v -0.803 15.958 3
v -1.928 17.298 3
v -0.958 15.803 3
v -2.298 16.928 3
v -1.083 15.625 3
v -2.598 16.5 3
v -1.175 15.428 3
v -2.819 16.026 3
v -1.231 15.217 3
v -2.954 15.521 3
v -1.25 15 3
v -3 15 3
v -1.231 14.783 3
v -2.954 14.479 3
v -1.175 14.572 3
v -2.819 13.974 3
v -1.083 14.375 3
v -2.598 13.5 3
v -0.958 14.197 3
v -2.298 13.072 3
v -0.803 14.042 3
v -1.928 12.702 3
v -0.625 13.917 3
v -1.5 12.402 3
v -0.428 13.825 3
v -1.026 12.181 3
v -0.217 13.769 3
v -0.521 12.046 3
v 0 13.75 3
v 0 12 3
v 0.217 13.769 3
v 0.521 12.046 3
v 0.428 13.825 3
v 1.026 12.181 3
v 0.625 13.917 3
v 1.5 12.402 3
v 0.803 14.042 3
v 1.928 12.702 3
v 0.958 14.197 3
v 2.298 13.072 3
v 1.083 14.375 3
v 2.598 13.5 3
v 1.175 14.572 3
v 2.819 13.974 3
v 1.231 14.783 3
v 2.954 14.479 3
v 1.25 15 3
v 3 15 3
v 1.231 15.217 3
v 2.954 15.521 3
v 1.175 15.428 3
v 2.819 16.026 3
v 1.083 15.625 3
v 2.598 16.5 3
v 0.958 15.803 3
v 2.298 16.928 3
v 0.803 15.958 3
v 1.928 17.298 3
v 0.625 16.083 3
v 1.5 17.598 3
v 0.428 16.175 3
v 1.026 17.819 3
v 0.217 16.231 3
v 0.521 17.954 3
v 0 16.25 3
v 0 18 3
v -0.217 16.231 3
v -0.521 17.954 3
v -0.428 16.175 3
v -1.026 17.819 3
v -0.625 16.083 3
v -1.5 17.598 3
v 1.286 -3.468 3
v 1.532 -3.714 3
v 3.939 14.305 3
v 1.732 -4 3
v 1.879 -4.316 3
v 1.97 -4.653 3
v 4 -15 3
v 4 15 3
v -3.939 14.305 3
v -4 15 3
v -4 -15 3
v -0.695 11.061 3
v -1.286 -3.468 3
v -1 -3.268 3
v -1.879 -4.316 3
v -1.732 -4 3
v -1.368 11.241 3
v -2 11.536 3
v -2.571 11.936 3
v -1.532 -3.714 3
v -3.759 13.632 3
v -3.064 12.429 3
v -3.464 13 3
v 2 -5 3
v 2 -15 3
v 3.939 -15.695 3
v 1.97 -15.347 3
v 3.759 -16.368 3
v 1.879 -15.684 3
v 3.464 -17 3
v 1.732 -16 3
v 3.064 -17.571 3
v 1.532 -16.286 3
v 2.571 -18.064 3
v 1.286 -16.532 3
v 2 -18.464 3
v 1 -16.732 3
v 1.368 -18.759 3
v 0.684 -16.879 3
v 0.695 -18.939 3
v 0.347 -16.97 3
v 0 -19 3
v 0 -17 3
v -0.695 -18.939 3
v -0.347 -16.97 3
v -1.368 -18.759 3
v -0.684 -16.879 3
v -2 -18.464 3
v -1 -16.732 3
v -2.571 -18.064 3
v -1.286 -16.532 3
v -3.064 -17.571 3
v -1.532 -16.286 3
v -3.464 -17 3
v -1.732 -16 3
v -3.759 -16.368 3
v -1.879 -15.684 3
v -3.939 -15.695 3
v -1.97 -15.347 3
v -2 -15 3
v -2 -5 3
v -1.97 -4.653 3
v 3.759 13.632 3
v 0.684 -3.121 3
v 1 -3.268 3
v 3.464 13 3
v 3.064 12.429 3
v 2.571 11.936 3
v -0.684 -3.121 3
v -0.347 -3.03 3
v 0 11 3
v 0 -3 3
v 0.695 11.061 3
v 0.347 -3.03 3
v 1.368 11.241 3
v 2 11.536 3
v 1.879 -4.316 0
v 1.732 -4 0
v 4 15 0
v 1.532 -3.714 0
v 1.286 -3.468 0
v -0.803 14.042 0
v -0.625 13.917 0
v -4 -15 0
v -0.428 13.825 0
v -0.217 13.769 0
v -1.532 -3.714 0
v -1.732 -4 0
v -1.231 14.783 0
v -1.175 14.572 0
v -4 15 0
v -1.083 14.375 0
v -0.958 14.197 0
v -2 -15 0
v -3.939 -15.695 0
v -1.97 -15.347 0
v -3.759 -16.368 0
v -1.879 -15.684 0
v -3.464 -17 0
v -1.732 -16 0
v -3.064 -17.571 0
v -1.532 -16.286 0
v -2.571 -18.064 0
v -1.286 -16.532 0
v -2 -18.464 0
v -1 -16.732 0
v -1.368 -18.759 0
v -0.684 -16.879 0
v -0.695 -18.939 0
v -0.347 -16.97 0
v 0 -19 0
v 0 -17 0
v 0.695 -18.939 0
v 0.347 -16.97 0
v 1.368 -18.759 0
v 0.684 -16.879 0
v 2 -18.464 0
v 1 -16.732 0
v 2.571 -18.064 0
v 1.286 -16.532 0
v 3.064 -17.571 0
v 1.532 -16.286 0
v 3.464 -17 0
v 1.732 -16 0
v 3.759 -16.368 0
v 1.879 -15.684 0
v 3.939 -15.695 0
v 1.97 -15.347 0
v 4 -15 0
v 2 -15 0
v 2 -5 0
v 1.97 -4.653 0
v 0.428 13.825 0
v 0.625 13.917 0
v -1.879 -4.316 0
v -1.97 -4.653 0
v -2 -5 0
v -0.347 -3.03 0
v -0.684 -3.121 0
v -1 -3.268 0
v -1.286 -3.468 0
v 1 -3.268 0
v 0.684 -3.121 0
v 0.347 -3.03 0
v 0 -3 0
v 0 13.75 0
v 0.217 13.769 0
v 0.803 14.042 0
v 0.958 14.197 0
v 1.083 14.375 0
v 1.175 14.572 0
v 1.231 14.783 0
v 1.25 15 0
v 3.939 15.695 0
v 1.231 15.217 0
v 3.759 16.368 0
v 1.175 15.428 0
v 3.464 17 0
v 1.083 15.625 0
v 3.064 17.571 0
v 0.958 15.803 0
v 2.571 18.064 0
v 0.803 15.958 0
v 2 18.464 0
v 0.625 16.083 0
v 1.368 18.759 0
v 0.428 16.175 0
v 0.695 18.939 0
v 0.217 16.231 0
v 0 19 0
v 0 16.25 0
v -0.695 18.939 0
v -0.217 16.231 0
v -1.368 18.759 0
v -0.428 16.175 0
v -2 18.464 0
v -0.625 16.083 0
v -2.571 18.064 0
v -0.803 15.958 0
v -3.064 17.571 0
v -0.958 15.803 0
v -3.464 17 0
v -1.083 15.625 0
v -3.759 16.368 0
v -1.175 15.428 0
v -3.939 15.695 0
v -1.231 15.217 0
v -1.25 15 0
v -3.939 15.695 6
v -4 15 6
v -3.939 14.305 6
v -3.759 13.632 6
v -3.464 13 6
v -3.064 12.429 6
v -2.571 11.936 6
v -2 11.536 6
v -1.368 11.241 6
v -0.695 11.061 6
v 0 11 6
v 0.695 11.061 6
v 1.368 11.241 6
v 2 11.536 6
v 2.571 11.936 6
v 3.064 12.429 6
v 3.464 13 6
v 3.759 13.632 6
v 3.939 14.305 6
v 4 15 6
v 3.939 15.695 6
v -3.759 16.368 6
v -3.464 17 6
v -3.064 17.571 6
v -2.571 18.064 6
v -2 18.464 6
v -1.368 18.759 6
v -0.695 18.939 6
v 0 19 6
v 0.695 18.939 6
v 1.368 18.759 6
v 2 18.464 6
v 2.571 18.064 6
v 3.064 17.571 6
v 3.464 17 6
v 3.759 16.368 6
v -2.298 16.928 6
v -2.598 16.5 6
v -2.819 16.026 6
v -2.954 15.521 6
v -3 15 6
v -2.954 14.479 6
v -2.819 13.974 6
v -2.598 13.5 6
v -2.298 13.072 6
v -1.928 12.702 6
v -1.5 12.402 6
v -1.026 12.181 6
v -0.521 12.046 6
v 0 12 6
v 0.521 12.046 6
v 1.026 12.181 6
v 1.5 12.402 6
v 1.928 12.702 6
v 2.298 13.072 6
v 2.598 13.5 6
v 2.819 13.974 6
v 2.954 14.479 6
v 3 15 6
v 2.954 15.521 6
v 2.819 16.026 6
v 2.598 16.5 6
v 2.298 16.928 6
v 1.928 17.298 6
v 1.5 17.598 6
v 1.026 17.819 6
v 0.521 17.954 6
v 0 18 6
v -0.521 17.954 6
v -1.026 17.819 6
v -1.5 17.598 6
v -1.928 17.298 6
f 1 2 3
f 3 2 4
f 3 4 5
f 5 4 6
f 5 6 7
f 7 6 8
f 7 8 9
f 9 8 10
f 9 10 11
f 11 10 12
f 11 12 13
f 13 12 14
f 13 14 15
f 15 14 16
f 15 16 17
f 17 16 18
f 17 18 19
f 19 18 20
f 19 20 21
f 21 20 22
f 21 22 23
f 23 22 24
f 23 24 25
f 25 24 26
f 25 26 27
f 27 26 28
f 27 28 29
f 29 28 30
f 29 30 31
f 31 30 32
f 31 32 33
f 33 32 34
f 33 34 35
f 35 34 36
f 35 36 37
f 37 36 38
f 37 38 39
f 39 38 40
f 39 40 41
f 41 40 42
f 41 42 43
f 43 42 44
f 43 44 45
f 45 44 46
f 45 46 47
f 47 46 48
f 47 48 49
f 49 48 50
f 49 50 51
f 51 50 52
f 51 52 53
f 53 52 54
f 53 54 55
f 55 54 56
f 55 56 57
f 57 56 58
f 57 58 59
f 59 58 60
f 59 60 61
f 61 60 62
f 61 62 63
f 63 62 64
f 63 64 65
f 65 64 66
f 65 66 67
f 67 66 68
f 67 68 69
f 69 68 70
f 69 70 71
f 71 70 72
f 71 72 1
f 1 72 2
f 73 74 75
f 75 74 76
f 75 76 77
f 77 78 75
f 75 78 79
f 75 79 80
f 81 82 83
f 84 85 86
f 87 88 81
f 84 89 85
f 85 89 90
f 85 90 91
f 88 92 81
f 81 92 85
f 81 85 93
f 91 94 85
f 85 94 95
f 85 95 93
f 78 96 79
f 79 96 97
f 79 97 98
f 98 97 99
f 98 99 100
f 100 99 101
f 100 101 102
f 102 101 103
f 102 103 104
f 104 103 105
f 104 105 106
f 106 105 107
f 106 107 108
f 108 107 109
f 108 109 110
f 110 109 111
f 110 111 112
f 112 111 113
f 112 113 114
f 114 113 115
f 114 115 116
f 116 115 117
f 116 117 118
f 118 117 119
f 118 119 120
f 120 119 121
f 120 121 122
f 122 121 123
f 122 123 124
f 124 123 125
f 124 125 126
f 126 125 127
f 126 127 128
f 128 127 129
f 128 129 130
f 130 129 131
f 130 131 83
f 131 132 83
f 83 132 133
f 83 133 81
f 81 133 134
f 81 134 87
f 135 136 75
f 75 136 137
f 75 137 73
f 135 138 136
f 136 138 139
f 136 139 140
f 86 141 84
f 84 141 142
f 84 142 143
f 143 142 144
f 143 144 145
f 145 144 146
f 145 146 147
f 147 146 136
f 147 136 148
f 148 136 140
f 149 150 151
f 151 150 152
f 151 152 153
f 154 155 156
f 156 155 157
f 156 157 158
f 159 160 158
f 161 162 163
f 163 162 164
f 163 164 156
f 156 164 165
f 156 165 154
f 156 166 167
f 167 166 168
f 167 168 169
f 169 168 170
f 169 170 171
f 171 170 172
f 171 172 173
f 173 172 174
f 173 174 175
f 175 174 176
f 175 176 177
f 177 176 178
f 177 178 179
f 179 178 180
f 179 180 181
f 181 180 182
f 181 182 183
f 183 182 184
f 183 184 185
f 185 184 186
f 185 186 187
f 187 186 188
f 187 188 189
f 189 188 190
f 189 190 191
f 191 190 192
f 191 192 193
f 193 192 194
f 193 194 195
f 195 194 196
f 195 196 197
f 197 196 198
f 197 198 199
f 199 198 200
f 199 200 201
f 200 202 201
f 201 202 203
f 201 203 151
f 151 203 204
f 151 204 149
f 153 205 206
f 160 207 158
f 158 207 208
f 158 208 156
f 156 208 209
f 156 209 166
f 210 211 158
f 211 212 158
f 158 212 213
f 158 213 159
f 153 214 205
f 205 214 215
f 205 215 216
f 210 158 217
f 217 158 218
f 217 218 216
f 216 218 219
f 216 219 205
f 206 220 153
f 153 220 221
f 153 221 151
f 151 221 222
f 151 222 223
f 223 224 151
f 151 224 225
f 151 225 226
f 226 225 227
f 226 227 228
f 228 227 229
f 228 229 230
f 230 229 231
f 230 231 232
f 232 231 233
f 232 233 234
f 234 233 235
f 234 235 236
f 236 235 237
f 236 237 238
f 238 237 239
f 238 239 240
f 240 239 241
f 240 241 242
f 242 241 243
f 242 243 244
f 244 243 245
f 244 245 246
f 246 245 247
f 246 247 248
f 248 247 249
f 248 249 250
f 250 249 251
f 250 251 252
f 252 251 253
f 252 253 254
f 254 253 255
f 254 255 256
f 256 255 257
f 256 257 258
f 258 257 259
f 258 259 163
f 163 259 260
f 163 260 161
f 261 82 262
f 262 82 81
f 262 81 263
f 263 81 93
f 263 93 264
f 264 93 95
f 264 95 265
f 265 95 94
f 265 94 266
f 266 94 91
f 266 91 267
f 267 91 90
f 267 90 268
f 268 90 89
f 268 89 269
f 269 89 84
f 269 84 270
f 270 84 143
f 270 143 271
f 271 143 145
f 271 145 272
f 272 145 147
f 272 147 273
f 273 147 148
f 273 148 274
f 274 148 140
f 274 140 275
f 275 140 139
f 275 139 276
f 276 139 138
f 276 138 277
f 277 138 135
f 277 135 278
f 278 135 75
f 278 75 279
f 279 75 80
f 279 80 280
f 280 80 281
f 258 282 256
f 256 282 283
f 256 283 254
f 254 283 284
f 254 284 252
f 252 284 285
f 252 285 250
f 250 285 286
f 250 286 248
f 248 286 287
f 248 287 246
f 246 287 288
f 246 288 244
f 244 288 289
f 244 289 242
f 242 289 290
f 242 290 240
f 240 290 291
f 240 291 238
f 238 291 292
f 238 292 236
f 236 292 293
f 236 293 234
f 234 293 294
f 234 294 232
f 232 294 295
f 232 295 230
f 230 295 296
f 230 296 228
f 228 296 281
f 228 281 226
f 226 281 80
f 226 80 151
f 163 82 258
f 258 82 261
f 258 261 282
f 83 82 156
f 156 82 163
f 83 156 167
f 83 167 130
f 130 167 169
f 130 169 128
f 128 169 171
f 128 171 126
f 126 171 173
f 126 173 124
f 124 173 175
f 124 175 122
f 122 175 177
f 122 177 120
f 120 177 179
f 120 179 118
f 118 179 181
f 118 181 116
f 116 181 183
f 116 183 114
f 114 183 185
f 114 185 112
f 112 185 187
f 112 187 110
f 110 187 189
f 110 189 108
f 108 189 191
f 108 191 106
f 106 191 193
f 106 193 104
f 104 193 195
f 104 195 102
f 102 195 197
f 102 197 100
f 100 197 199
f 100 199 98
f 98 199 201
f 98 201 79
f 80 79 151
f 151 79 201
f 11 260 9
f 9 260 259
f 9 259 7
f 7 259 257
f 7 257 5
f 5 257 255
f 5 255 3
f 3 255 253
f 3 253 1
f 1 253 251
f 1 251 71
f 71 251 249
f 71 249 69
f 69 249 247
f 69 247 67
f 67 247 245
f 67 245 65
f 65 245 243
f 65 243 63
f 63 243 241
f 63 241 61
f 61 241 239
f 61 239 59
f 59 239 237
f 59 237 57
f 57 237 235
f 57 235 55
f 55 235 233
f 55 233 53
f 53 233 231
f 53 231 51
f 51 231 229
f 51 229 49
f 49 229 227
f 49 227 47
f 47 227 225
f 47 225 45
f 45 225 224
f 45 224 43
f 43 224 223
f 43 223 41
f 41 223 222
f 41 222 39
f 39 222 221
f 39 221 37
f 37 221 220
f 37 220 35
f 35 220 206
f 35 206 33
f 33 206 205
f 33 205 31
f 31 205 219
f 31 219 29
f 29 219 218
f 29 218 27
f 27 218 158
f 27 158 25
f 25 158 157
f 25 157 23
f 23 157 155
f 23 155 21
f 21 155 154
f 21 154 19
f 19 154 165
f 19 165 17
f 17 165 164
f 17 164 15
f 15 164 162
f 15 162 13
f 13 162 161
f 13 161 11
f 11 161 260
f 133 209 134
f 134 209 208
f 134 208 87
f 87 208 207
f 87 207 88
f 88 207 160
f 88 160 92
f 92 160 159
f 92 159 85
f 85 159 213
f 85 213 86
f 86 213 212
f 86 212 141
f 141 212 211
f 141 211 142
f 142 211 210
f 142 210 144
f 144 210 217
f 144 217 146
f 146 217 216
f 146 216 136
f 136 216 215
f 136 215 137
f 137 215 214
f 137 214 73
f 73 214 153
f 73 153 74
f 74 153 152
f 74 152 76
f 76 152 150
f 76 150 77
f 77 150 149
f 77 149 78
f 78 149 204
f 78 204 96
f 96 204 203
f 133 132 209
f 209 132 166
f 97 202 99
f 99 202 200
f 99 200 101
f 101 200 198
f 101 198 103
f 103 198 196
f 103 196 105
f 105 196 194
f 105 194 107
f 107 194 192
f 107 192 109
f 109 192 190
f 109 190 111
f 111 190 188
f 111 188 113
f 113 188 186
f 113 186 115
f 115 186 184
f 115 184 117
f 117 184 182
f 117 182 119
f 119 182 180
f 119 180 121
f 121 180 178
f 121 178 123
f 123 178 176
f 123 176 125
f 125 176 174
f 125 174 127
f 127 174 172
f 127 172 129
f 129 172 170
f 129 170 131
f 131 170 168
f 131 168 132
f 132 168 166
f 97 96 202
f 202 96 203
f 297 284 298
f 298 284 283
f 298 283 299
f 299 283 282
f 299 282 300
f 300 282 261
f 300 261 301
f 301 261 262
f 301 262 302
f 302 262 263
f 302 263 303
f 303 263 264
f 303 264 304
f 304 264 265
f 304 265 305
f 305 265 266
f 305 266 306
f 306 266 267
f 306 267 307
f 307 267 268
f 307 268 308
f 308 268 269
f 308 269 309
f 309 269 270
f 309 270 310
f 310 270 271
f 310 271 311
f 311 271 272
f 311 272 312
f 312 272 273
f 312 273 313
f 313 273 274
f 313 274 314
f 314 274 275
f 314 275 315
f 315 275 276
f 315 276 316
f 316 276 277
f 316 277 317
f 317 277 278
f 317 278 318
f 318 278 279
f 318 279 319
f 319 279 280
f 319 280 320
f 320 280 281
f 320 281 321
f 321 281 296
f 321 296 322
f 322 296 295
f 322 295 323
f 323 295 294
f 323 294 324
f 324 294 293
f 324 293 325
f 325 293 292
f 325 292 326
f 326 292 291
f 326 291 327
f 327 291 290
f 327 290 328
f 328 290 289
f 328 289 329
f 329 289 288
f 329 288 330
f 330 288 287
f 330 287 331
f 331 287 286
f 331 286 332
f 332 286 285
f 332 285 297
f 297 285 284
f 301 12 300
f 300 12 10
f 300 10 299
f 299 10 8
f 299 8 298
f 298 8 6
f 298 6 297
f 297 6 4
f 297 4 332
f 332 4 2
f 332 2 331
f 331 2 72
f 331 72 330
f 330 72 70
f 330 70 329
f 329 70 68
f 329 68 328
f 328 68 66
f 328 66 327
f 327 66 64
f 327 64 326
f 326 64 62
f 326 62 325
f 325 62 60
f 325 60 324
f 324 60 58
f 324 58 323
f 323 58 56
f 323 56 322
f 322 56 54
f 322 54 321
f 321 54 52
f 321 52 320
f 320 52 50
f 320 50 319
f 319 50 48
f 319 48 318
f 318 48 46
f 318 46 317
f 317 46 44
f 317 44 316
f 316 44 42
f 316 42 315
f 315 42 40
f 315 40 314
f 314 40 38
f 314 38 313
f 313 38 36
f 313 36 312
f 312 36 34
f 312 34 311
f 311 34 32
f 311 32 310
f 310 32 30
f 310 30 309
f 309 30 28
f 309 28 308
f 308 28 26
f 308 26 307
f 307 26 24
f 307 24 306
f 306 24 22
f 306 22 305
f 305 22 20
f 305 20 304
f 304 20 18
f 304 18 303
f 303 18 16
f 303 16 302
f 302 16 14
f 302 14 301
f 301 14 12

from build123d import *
from build123d.topology import SkipClean

# Parameters (mm, degrees)
SKETCH1_R           = 1.25
BOSS_EXTRUDE1_DEPTH = 3
SKETCH2_R           = 4
SKETCH2_R_2         = 3
BOSS_EXTRUDE2_DEPTH = 3


with BuildPart() as part:
    # Sketch1 → Boss-Extrude1 (new body)
    with BuildSketch(Plane.XY):
        with BuildLine():
            Line((4, 15), (4, -15))
            ThreePointArc((4, -15), (0, -19), (-4, -15))
            Line((-4, -15), (-4, 15))
            ThreePointArc((-4, 15), (0, 19), (4, 15))
        make_face()
        with Locations((0, 15)):
            Circle(SKETCH1_R, mode=Mode.SUBTRACT)
        with BuildLine():
            Line((-2, -5), (-2, -15))
            ThreePointArc((-2, -15), (0, -17), (2, -15))
            Line((2, -15), (2, -5))
            ThreePointArc((2, -5), (0, -3), (-2, -5))
        make_face(mode=Mode.SUBTRACT)
    extrude(amount=BOSS_EXTRUDE1_DEPTH)

    # Sketch2 → Boss-Extrude2 (add)
    with SkipClean():  # the faces are left unmerged after this step: merging them gives an invalid solid
        with BuildSketch(Plane.XY.offset(3)):
            with Locations((0, 15)):
                Circle(SKETCH2_R)
            with Locations((0, 15)):
                Circle(SKETCH2_R_2, mode=Mode.SUBTRACT)
        extrude(amount=BOSS_EXTRUDE2_DEPTH)
    add(part.part.scale(1), mode=Mode.REPLACE)  # the faces are merged on a copy


solid = part.part
